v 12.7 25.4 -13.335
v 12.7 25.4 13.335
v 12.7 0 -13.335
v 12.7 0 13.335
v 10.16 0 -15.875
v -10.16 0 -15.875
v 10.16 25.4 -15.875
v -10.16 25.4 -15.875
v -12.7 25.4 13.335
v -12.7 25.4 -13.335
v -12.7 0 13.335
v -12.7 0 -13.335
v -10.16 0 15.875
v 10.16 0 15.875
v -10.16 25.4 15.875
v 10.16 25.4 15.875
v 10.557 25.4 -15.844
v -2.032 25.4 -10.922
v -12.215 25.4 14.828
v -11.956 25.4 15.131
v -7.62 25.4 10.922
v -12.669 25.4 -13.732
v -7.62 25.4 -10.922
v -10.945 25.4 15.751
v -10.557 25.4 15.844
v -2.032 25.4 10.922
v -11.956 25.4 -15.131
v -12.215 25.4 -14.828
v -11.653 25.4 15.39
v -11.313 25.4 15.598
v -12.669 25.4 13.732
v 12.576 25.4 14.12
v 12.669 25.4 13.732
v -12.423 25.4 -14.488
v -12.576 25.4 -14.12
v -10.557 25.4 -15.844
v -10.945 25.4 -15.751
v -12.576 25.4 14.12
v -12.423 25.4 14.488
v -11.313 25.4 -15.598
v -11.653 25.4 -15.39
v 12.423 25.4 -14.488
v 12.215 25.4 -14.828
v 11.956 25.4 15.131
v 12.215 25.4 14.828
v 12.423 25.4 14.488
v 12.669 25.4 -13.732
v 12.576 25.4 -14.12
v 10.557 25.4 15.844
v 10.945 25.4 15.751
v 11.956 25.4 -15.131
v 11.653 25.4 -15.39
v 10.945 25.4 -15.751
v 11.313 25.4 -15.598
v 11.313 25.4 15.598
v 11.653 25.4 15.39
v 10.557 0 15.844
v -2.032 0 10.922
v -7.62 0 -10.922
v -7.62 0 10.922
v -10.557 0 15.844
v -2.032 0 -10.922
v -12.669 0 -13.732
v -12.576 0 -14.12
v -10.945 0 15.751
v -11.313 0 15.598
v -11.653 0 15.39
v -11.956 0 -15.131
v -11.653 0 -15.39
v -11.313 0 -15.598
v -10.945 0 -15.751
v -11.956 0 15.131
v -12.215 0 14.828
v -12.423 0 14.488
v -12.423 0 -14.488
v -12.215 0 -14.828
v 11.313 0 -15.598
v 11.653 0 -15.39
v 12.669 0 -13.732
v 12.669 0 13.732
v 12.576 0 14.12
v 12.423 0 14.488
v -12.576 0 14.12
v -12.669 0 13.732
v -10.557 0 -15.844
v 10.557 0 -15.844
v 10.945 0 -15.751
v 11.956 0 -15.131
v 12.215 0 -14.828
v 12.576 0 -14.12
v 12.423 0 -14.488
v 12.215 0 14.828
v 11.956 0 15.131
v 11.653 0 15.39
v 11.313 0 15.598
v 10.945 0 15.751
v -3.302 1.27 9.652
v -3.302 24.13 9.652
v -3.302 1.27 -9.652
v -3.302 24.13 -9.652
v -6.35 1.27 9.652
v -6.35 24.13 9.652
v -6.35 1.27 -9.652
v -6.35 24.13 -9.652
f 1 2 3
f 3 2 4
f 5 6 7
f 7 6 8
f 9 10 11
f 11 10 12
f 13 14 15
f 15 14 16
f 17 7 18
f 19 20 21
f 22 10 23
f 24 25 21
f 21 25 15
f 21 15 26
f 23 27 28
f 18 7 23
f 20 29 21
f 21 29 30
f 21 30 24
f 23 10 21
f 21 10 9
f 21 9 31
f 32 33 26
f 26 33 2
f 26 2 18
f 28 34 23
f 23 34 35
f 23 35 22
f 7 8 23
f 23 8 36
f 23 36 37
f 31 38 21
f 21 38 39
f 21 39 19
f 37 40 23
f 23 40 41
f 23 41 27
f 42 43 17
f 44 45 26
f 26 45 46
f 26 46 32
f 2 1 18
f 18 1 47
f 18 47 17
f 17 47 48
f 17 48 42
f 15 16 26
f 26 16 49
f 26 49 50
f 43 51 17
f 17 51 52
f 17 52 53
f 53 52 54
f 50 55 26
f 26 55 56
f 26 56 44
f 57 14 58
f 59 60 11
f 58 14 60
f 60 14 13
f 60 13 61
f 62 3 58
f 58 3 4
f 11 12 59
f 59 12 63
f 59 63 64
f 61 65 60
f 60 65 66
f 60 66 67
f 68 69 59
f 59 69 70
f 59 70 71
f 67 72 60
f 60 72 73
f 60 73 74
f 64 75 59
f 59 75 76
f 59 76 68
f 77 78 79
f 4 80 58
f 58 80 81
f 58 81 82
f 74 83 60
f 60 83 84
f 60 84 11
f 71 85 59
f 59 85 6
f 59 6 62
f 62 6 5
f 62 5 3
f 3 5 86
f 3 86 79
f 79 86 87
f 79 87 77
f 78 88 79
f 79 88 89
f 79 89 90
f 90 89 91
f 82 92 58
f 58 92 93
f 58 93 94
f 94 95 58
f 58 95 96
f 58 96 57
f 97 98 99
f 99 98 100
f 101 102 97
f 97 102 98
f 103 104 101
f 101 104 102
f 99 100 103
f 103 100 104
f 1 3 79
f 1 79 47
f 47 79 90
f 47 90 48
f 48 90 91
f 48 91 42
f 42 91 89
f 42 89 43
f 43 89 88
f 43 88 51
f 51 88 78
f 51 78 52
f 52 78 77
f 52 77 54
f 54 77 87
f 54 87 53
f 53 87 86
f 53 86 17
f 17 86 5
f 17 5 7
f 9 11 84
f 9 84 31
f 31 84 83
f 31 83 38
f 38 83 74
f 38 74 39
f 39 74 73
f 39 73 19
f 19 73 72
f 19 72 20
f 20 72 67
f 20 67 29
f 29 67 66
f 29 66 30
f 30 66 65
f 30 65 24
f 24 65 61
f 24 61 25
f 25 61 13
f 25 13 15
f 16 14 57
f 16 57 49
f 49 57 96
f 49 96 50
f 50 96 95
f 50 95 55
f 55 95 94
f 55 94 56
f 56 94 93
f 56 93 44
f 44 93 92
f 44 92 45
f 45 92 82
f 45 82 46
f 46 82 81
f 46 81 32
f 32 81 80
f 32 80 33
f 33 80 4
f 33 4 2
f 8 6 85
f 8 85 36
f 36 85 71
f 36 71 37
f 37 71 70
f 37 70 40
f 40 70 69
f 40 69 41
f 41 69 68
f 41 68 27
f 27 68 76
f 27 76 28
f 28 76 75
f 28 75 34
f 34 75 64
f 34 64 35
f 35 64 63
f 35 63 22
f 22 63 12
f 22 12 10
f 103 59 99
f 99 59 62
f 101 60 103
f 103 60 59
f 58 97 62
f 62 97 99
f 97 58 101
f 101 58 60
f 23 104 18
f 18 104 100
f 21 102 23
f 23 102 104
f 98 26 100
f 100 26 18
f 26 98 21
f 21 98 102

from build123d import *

# Parameters (mm, degrees)
SKETCH1_W           = 25.4
SKETCH1_H           = 31.75
BOSS_EXTRUDE1_DEPTH = 25.4
SKETCH2_W           = 3.048
SKETCH2_H           = 19.304
CUT_EXTRUDE1_DEPTH  = 33.534068682
FILLET1_R           = 2.54
CHAMFER1_SIZE       = 1.27


with BuildPart() as part:
    # Sketch1 → Boss-Extrude1 (new body)
    with BuildSketch(Plane(origin=(0, 0, 0), x_dir=(1, 0, 0), z_dir=(0, 1, 0))):
        Rectangle(SKETCH1_W, SKETCH1_H)
    extrude(amount=BOSS_EXTRUDE1_DEPTH)

    # Sketch2 → Cut-Extrude1 (cut, through all)
    with BuildSketch(Plane(origin=(0, 25.4, 0), x_dir=(1, 0, 0), z_dir=(0, 1, 0))):
        with Locations((-4.826, 0)):
            Rectangle(SKETCH2_W, SKETCH2_H)
    extrude(amount=-CUT_EXTRUDE1_DEPTH, mode=Mode.SUBTRACT)

    # Fillet1
    fillet1_edges = [part.edges().sort_by_distance(p)[0] for p in [
        (12.7, 12.7, 15.875),
        (-12.7, 12.7, 15.875),
        (-12.7, 12.7, -15.875),
        (12.7, 12.7, -15.875),
    ]]
    fillet(fillet1_edges, radius=FILLET1_R)

    # Chamfer1
    chamfer1_edges = [part.edges().sort_by_distance(p)[0] for p in [
        (-3.302, 0, 0),
        (-4.826, 0, 9.652),
        (-6.35, 0, 0),
        (-4.826, 0, -9.652),
        (-3.302, 25.4, 0),
        (-4.826, 25.4, -9.652),
        (-6.35, 25.4, 0),
        (-4.826, 25.4, 9.652),
    ]]
    chamfer(chamfer1_edges, length=CHAMFER1_SIZE)


solid = part.part
